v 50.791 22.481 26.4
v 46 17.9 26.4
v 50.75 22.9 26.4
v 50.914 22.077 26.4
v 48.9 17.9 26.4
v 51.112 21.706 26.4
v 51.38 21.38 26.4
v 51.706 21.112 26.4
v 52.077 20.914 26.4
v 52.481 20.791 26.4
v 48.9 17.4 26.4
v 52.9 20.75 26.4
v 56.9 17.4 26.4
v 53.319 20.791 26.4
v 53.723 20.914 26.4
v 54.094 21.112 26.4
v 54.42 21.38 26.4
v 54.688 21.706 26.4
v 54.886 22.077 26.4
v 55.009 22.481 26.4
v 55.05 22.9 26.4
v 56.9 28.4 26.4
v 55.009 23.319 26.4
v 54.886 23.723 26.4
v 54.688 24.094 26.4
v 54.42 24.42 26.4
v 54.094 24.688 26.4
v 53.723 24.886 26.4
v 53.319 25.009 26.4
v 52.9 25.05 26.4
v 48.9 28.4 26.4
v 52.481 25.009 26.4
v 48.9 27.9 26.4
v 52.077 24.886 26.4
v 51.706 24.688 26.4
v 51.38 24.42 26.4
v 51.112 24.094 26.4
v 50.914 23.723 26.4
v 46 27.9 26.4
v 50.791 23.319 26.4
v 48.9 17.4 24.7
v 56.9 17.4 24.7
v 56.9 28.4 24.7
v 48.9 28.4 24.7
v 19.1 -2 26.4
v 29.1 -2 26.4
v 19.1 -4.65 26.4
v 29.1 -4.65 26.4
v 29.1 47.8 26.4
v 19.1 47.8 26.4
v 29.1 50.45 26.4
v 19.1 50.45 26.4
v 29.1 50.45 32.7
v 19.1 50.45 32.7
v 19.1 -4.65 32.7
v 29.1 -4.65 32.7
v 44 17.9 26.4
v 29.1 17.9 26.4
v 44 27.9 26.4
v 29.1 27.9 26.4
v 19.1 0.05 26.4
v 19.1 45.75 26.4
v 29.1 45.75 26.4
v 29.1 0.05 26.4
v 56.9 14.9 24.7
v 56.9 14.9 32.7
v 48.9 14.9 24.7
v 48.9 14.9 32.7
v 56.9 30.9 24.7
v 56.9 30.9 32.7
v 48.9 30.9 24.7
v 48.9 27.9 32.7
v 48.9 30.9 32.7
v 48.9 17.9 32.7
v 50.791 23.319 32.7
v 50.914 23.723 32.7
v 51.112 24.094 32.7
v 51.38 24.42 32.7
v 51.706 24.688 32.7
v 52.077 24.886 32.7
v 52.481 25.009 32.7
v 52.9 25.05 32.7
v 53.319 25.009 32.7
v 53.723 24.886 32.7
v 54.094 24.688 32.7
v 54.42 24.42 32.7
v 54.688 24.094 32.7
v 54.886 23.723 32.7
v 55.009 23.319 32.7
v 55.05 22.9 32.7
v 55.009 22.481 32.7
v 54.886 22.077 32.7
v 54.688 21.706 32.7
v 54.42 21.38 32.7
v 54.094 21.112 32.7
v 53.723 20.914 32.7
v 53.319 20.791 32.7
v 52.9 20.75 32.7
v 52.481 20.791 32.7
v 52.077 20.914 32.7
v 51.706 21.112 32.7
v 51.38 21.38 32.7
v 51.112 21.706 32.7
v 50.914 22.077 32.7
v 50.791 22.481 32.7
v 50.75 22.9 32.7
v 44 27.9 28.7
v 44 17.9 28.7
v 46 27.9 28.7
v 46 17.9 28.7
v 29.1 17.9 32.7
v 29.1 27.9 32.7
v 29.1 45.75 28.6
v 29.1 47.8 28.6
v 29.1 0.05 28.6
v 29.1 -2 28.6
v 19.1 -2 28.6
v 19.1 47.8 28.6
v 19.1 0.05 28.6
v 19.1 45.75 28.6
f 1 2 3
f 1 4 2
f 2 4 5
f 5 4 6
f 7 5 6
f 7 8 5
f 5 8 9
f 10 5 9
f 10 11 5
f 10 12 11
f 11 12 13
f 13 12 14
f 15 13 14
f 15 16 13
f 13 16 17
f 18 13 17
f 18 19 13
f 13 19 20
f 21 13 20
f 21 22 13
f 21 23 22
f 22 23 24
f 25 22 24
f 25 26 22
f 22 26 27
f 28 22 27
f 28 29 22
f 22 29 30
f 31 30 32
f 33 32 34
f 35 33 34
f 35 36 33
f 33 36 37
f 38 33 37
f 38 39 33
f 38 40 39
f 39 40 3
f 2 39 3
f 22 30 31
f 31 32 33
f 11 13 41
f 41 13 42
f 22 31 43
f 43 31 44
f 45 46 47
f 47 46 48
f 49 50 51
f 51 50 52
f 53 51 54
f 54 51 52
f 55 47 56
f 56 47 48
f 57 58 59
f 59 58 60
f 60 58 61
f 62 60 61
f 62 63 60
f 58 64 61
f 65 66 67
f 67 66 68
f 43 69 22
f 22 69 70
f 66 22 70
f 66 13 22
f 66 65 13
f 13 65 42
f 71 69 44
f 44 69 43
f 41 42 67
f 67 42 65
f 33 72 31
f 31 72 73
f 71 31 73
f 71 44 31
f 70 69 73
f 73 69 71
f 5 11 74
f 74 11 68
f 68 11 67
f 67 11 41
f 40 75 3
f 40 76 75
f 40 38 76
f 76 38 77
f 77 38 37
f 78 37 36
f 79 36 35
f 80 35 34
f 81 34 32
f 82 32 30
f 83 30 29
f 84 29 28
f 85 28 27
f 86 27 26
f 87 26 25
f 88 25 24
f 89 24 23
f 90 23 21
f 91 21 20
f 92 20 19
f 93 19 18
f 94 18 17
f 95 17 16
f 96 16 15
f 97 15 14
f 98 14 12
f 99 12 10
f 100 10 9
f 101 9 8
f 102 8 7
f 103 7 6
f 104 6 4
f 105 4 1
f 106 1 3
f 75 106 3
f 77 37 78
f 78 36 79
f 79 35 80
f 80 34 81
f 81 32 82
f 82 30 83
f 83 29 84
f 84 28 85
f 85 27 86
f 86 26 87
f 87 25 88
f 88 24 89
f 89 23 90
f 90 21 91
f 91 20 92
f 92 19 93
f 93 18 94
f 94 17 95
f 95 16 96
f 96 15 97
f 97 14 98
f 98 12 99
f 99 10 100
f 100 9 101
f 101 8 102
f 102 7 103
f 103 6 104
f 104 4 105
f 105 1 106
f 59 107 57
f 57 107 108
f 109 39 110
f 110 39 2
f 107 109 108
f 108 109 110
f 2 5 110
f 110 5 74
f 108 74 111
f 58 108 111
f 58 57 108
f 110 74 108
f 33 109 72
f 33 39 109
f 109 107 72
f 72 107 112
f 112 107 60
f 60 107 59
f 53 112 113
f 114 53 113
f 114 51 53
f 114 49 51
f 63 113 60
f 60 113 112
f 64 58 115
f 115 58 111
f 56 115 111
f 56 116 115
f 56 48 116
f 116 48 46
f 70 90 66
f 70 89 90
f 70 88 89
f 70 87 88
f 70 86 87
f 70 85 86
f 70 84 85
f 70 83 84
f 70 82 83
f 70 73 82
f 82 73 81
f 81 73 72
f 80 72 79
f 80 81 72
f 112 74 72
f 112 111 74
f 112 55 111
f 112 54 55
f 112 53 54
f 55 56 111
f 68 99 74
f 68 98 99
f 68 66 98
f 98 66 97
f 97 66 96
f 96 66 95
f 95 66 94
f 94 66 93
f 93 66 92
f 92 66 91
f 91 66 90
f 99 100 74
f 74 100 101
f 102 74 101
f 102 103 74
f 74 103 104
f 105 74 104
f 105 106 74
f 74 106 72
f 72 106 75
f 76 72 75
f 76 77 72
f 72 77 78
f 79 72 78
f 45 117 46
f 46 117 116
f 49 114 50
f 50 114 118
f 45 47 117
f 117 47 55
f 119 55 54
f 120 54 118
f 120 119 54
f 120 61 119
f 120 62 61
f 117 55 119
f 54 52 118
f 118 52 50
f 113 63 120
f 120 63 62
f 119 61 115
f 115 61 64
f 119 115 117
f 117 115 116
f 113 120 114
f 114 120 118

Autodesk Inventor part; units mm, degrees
ref_plane "Work Plane1" through (34.6017, 22.9, 27.7) normal (0, 0, 1) x (0, -1, 0)
sketch "Sketch1" plane through (34.6017, 22.9, 27.7) normal (0, 0, 1) x (0, -1, 0)
  line L0 (-22.65, -5.5017) -> (22.65, -5.5017)
  line L1 (22.65, -5.5017) -> (22.65, -15.5017)
  line L2 (22.65, -15.5017) -> (-22.65, -15.5017)
  line L3 (-22.65, -15.5017) -> (-22.65, -5.5017)
  line L4 (-23.05, -33.7017) -> (-23.05, 15.1916) construction
  line L5 (23.05, 15.1916) -> (23.05, -33.7017) construction
  line L6 (-23.95, -33.6017) -> (-23.95, 15.3983) construction
  line L7 (22.9493, -34.6017) -> (-22.9493, -34.6017) construction
  line L8 (-23.85, -35.5017) -> (23.85, -35.5017) construction
  line L9 (23.05, -33.7017) -> (-23.05, -33.7017) construction
  point P0 (22.9, -34.6017)
  dimension "d0" = 45.3
  dimension "d1" = 10
  dimension "d2" = 0.4
  dimension "d4" = 20
extrude "Extrusion1" add sketch "Sketch1" along normal blind 3
sketch "Sketch2" plane through (19.1, 45.55, 27.7) normal (0, 1, 0) x (1, 0, 0)
  line L0 (10, 0) -> (10, -3) projected
  line L1 (0, -3) -> (10, -3)
  line L2 (10, -3) -> (10, -0.9)
  line L3 (10, -0.9) -> (0, -0.9)
  line L4 (0, -0.9) -> (0, -3)
  point P0 (-19.1, 27.7)
  dimension "d7" = 2.1
extrude "Extrusion2" add sketch "Sketch2" along normal blind 2
ref_plane "Work Plane3" through (19.1, 22.9, 27.7) normal (0, -1, 0) x (1, 0, 0)
mirror "Mirror2" about plane through (19.1, 22.9, 27.7) normal (0, -1, 0) of "Extrusion2"
sketch "Sketch3" plane through (19.1, 0.25, 27.7) normal (0, -1, 0) x (1, 0, 0)
  line L0 (10, 0.9) -> (0, 0.9) projected
  line L1 (0, 0) -> (0, 0.9) projected
  line L2 (10, 0) -> (0, 0) projected
  line L3 (10, 0) -> (10, 0.9) projected
  point P0 (-19.1, -27.7)
extrude "Extrusion3" add sketch "Sketch3" along normal blind 0.2
sketch "Sketch4" plane through (19.1, 45.55, 27.7) normal (0, 1, 0) x (1, 0, 0)
  line L0 (0, -0.9) -> (10, -0.9) projected
  line L1 (10, 0) -> (10, -0.9) projected
  line L2 (0, 0) -> (10, 0) projected
  line L3 (0, 0) -> (0, -0.9) projected
  point P0 (-19.1, 27.7)
extrude "Extrusion4" add sketch "Sketch4" along normal blind 0.2
sketch "Sketch5" plane through (19.1, 47.55, 27.7) normal (0, 1, 0) x (1, 0, 0)
  line L0 (0, -3) -> (10, -3) projected
  line L1 (10, -3) -> (10, -0.9) projected
  line L2 (10, -0.9) -> (0, -0.9) projected
  line L3 (0, -0.9) -> (0, -3) projected
  point P0 (-19.1, 27.7)
extrude "Extrusion5" add sketch "Sketch5" along normal blind 1.6
sketch "Sketch6" plane through (19.1, -1.75, 30.7) normal (0, -1, 0) x (1, 0, 0)
  line L0 (0, 0) -> (10, 0) projected
  line L1 (0, -2.1) -> (0, 0) projected
  line L2 (10, -2.1) -> (0, -2.1) projected
  line L3 (10, 0) -> (10, -2.1) projected
  point P0 (-19.1, -30.7)
extrude "Extrusion6" add sketch "Sketch6" along normal blind 1.6
sketch "Sketch7" plane through (29.1, 45.75, 28.6) normal (0, 0, -1) x (-1, 0, 0)
  line L0 (10, 0) -> (10, 3.4) projected
  line L1 (0, 3.4) -> (10, 3.4)
  line L2 (10, 3.4) -> (10, 1.85)
  line L3 (10, 1.85) -> (0, 1.85)
  line L4 (0, 1.85) -> (0, 3.4)
  point P0 (29.1, -45.75)
  dimension "d20" = 1.55
extrude "Extrusion7" add sketch "Sketch7" along normal up to surface (0.9 mm away)
mirror "Mirror3" about plane through (19.1, 22.9, 27.7) normal (0, -1, 0) of "Extrusion7"
sketch "Sketch8" plane through (19.1, 47.6, 28.6) normal (0, -1, 0) x (1, 0, 0)
  line L0 (0, -0.9) -> (10, -0.9) projected
  line L1 (10, 0) -> (10, -0.9) projected
  line L2 (0, 0) -> (10, 0) projected
  line L3 (0, 0) -> (0, -0.9) projected
  point P0 (-19.1, -28.6)
extrude "Extrusion8" cut sketch "Sketch8" against normal blind 0.2
sketch "Sketch9" plane through (19.1, -1.8, 27.7) normal (0, 1, 0) x (1, 0, 0)
  line L0 (0, 0) -> (10, 0) projected
  line L1 (0, -0.9) -> (0, 0) projected
  line L2 (10, -0.9) -> (0, -0.9) projected
  line L3 (10, -0.9) -> (10, 0) projected
  point P0 (-19.1, 27.7)
extrude "Extrusion9" cut sketch "Sketch9" against normal blind 0.2
sketch "Sketch10" plane through (34.6017, 22.9, 30.7) normal (0, 0, 1) x (1, 0, 0)
  line L0 (-5.5017, 26.25) -> (-5.5017, -26.25) projected
  line L1 (-15.5017, 26.25) -> (-5.5017, 26.25) projected
  line L2 (-15.5017, -26.25) -> (-15.5017, 26.25) projected
  line L3 (-5.5017, -26.25) -> (-15.5017, -26.25) projected
  point P0 (-34.6017, -22.9)
extrude "Extrusion10" add sketch "Sketch10" along normal blind 2
sketch "Sketch11" plane through (29.1, 0.05, 27.7) normal (1, 0, 0) x (0, 0, -1)
  line L0 (0, 45.7) -> (0, 0) projected
  line L1 (-5, -3.4) -> (-5, 49.1) projected
  line L2 (-5, 27.85) -> (0, 27.85)
  line L3 (0, 27.85) -> (0, 17.85)
  line L4 (0, 17.85) -> (-5, 17.85)
  line L5 (-5, 17.85) -> (-5, 27.85)
  line L6 (0, 49.1) -> (-5, 49.1) projected
  point P0 (27.7, -0.05)
  dimension "d29" = 10
  dimension "d37" = 21.25
ref_plane "Work Plane4" through (53.9, 4.4, -9.45) normal (1, 0, 0) x (0, 1, 0)
ref_plane "Work Plane5" through (56.9, 17.9, 20.2) normal (1, 0, 0) x (0, 1, 0)
extrude "Extrusion11" add sketch "Sketch11" along normal up to surface (27.8 mm away)
sketch "Sketch12" plane through (29.1, 17.9, 27.7) normal (0, -1, 0) x (1, 0, 0)
  line L0 (16.8, 0) -> (16.8, 0.8) construction
  line L1 (15.8, 0.8) -> (16.8, 0.8) construction
  line L2 (15, 0) -> (15, 0.8) construction
  line L3 (27.8, 0) -> (27.8, 5) construction
  line L4 (0, 5) -> (27.8, 5) construction
  line L5 (0, 0) -> (0, 5) construction
  line L6 (0, 0) -> (27.8, 0) construction
  line L7 (-34.3067, 0.8) -> (15.8, 0.8) construction
  line L8 (15, 0) -> (15, 0.8) construction
  line L9 (15, 0) -> (15, 0.8)
  line L10 (16.8, 0.8) -> (16.8, 0)
  line L11 (15, 0) -> (16.8, 0)
  line L12 (16.8, 0) -> (16.8, 0.8)
  line L13 (16.8, 0.8) -> (15, 0.8)
  line L14 (15, 0.8) -> (15, 0)
  line L15 (14.9, 0) -> (16.9, 0)
  line L16 (16.9, 0) -> (16.9, 1)
  line L17 (16.9, 1) -> (14.9, 1)
  line L18 (14.9, 1) -> (14.9, 0)
  point P0 (-29.1, -27.7)
  dimension "d32" = 2
  dimension "d33" = 1
  dimension "d34" = 0.1
extrude "Extrusion12" cut sketch "Sketch12" against normal up to next
sketch "Sketch17" plane through (34.6017, 22.9, 32.7) normal (0, 0, 1) x (1, 0, 0)
  circle A0 centre (18.2983, 0) radius 2.15 projected
  point P0 (-34.6017, -22.9)
extrude "Extrusion16" cut sketch "Sketch17" against normal up to next
sketch "Sketch18" plane through (56.9, 17.9, 27.7) normal (1, 0, 0) x (0, 0, -1)
  line L0 (0, 0) -> (-5, 0) projected
  line L1 (0, 10) -> (0, 0) projected
  line L2 (-5, 10) -> (0, 10) projected
  line L3 (-5, 0) -> (-5, 10) projected
  point P0 (27.7, -17.9)
extrude "Extrusion17" add sketch "Sketch18" along normal blind 3
sketch "Sketch20" plane through (29.1, 17.9, 27.7) normal (0, -1, 0) x (1, 0, 0)
  line L0 (16.9, 0) -> (30.8, 0) projected
  line L1 (30.8, 5) -> (19.8, 5)
  line L2 (19.8, 5) -> (19.8, 0)
  line L3 (19.8, 0) -> (30.8, 0)
  line L4 (30.8, 0) -> (30.8, 5)
  point P0 (-29.1, -27.7)
  dimension "d51" = 11
extrude "Extrusion18" add sketch "Sketch20" along normal blind 3
sketch "Sketch21" plane through (29.1, 27.9, 32.7) normal (0, 1, 0) x (1, 0, 0)
  line L0 (16.9, 5) -> (30.8, 5) projected
  line L1 (30.8, 0) -> (19.8, 0)
  line L2 (19.8, 0) -> (19.8, 5)
  line L3 (19.8, 5) -> (30.8, 5)
  line L4 (30.8, 5) -> (30.8, 0)
  point P0 (-29.1, 32.7)
  dimension "d54" = 11
extrude "Extrusion19" add sketch "Sketch21" along normal blind 3
sketch "Sketch22" plane through (34.6017, 22.9, 27.7) normal (0, 0, -1) x (-1, 0, 0)
  line L0 (-14.2983, -8) -> (-22.2983, -8)
  line L1 (-22.2983, -8) -> (-22.2983, -5.5)
  line L2 (-22.2983, -5.5) -> (-14.2983, -5.5)
  line L3 (-14.2983, -5.5) -> (-14.2983, -8)
  point P0 (34.6017, -22.9)
  dimension "d57" = 8
  dimension "d58" = 2.5
extrude "Extrusion20" add sketch "Sketch22" along normal blind 3
sketch "Sketch23" plane through (34.6017, 22.9, 27.7) normal (0, 0, -1) x (-1, 0, 0)
  line L0 (-14.2983, 8) -> (-22.2983, 8)
  line L1 (-22.2983, 8) -> (-22.2983, 5.5)
  line L2 (-22.2983, 5.5) -> (-14.2983, 5.5)
  line L3 (-14.2983, 5.5) -> (-14.2983, 8)
  point P0 (34.6017, -22.9)
  dimension "d61" = 8
  dimension "d62" = 2.5
extrude "Extrusion21" add sketch "Sketch23" along normal blind 3
sketch "Sketch24" plane through (59.9, 17.9, 27.7) normal (1, 0, 0) x (0, 0, -1)
  line L0 (0, 13) -> (0, -3) projected
  line L1 (-5, 13) -> (0, 13) projected
  line L2 (-5, -3) -> (-5, 13) projected
  line L3 (0, -3) -> (-5, -3) projected
  point P0 (27.7, -17.9)
extrude "Extrusion22" cut sketch "Sketch24" against normal blind 3
sketch "Sketch25" plane through (34.6017, 22.9, 27.7) normal (0, 0, -1) x (-1, 0, 0)
  line L0 (-9.3983, 5) -> (-9.3983, -5) projected
  line L1 (5.5017, -5) -> (-9.3983, -5) projected
  line L2 (5.5017, -5) -> (5.5017, -22.85) projected
  line L3 (15.5017, -22.85) -> (5.5017, -22.85) projected
  line L4 (15.5017, -22.85) -> (15.5017, 22.85) projected
  line L5 (5.5017, 22.85) -> (15.5017, 22.85) projected
  line L6 (5.5017, 22.85) -> (5.5017, 5) projected
  line L7 (5.5017, 5) -> (-9.3983, 5) projected
  point P0 (34.6017, -22.9)
extrude "Extrusion23" add sketch "Sketch25" along normal blind 1.3
sketch "Sketch26" plane through (19.1, -3.35, 30.7) normal (0, -1, 0) x (1, 0, 0)
  line L0 (0, -3) -> (0, 2) projected
  line L1 (10, -3) -> (0, -3) projected
  line L2 (10, 2) -> (10, -3) projected
  line L3 (0, 2) -> (10, 2) projected
  point P0 (-19.1, -30.7)
extrude "Extrusion24" add sketch "Sketch26" along normal blind 1.3
sketch "Sketch27" plane through (19.1, 49.15, 27.7) normal (0, 1, 0) x (1, 0, 0)
  line L0 (10, 0) -> (10, -5) projected
  line L1 (10, 0) -> (0, 0) projected
  line L2 (0, -5) -> (0, 0) projected
  line L3 (10, -5) -> (0, -5) projected
  point P0 (-19.1, 27.7)
extrude "Extrusion25" add sketch "Sketch27" along normal blind 1.3
sketch "Sketch28" plane through (29.1, 47.8, 27.7) normal (0, 0, -1) x (-1, 0, 0)
  line L0 (0, 0) -> (10, 0) projected
  line L1 (10, 0) -> (10, 2.65) projected
  line L2 (0, 2.65) -> (10, 2.65) projected
  line L3 (0, 0) -> (0, 2.65) projected
  point P0 (29.1, -47.8)
extrude "Extrusion26" add sketch "Sketch28" along normal blind 1.3
sketch "Sketch29" plane through (29.1, -2, 27.7) normal (0, 0, -1) x (-1, 0, 0)
  line L0 (10, 0) -> (0, 0) projected
  line L1 (0, 0) -> (0, -2.65) projected
  line L2 (10, -2.65) -> (0, -2.65) projected
  line L3 (10, -2.65) -> (10, 0) projected
  point P0 (29.1, 2)
extrude "Extrusion27" add sketch "Sketch29" along normal blind 1.3
sketch "Sketch30" plane through (34.6017, 22.9, 27.7) normal (0, 0, -1) x (-1, 0, 0)
  circle A0 centre (-18.2983, 0) radius 2.15 projected
  line L0 (-22.2983, 5.5) -> (-22.2983, -5.5) projected
  line L1 (-22.2983, -5.5) -> (-14.2983, -5.5) projected
  line L2 (-14.2983, -5) -> (-14.2983, -5.5) projected
  line L3 (-11.3983, -5) -> (-14.2983, -5) projected
  line L4 (-11.3983, -5) -> (-11.3983, 5) projected
  line L5 (-11.3983, 5) -> (-14.2983, 5) projected
  line L6 (-14.2983, 5) -> (-14.2983, 5.5) projected
  line L7 (-14.2983, 5.5) -> (-22.2983, 5.5) projected
  point P0 (34.6017, -22.9)
extrude "Extrusion28" add sketch "Sketch30" along normal blind 1.3
properties part number "LongAxisTopClamp"
